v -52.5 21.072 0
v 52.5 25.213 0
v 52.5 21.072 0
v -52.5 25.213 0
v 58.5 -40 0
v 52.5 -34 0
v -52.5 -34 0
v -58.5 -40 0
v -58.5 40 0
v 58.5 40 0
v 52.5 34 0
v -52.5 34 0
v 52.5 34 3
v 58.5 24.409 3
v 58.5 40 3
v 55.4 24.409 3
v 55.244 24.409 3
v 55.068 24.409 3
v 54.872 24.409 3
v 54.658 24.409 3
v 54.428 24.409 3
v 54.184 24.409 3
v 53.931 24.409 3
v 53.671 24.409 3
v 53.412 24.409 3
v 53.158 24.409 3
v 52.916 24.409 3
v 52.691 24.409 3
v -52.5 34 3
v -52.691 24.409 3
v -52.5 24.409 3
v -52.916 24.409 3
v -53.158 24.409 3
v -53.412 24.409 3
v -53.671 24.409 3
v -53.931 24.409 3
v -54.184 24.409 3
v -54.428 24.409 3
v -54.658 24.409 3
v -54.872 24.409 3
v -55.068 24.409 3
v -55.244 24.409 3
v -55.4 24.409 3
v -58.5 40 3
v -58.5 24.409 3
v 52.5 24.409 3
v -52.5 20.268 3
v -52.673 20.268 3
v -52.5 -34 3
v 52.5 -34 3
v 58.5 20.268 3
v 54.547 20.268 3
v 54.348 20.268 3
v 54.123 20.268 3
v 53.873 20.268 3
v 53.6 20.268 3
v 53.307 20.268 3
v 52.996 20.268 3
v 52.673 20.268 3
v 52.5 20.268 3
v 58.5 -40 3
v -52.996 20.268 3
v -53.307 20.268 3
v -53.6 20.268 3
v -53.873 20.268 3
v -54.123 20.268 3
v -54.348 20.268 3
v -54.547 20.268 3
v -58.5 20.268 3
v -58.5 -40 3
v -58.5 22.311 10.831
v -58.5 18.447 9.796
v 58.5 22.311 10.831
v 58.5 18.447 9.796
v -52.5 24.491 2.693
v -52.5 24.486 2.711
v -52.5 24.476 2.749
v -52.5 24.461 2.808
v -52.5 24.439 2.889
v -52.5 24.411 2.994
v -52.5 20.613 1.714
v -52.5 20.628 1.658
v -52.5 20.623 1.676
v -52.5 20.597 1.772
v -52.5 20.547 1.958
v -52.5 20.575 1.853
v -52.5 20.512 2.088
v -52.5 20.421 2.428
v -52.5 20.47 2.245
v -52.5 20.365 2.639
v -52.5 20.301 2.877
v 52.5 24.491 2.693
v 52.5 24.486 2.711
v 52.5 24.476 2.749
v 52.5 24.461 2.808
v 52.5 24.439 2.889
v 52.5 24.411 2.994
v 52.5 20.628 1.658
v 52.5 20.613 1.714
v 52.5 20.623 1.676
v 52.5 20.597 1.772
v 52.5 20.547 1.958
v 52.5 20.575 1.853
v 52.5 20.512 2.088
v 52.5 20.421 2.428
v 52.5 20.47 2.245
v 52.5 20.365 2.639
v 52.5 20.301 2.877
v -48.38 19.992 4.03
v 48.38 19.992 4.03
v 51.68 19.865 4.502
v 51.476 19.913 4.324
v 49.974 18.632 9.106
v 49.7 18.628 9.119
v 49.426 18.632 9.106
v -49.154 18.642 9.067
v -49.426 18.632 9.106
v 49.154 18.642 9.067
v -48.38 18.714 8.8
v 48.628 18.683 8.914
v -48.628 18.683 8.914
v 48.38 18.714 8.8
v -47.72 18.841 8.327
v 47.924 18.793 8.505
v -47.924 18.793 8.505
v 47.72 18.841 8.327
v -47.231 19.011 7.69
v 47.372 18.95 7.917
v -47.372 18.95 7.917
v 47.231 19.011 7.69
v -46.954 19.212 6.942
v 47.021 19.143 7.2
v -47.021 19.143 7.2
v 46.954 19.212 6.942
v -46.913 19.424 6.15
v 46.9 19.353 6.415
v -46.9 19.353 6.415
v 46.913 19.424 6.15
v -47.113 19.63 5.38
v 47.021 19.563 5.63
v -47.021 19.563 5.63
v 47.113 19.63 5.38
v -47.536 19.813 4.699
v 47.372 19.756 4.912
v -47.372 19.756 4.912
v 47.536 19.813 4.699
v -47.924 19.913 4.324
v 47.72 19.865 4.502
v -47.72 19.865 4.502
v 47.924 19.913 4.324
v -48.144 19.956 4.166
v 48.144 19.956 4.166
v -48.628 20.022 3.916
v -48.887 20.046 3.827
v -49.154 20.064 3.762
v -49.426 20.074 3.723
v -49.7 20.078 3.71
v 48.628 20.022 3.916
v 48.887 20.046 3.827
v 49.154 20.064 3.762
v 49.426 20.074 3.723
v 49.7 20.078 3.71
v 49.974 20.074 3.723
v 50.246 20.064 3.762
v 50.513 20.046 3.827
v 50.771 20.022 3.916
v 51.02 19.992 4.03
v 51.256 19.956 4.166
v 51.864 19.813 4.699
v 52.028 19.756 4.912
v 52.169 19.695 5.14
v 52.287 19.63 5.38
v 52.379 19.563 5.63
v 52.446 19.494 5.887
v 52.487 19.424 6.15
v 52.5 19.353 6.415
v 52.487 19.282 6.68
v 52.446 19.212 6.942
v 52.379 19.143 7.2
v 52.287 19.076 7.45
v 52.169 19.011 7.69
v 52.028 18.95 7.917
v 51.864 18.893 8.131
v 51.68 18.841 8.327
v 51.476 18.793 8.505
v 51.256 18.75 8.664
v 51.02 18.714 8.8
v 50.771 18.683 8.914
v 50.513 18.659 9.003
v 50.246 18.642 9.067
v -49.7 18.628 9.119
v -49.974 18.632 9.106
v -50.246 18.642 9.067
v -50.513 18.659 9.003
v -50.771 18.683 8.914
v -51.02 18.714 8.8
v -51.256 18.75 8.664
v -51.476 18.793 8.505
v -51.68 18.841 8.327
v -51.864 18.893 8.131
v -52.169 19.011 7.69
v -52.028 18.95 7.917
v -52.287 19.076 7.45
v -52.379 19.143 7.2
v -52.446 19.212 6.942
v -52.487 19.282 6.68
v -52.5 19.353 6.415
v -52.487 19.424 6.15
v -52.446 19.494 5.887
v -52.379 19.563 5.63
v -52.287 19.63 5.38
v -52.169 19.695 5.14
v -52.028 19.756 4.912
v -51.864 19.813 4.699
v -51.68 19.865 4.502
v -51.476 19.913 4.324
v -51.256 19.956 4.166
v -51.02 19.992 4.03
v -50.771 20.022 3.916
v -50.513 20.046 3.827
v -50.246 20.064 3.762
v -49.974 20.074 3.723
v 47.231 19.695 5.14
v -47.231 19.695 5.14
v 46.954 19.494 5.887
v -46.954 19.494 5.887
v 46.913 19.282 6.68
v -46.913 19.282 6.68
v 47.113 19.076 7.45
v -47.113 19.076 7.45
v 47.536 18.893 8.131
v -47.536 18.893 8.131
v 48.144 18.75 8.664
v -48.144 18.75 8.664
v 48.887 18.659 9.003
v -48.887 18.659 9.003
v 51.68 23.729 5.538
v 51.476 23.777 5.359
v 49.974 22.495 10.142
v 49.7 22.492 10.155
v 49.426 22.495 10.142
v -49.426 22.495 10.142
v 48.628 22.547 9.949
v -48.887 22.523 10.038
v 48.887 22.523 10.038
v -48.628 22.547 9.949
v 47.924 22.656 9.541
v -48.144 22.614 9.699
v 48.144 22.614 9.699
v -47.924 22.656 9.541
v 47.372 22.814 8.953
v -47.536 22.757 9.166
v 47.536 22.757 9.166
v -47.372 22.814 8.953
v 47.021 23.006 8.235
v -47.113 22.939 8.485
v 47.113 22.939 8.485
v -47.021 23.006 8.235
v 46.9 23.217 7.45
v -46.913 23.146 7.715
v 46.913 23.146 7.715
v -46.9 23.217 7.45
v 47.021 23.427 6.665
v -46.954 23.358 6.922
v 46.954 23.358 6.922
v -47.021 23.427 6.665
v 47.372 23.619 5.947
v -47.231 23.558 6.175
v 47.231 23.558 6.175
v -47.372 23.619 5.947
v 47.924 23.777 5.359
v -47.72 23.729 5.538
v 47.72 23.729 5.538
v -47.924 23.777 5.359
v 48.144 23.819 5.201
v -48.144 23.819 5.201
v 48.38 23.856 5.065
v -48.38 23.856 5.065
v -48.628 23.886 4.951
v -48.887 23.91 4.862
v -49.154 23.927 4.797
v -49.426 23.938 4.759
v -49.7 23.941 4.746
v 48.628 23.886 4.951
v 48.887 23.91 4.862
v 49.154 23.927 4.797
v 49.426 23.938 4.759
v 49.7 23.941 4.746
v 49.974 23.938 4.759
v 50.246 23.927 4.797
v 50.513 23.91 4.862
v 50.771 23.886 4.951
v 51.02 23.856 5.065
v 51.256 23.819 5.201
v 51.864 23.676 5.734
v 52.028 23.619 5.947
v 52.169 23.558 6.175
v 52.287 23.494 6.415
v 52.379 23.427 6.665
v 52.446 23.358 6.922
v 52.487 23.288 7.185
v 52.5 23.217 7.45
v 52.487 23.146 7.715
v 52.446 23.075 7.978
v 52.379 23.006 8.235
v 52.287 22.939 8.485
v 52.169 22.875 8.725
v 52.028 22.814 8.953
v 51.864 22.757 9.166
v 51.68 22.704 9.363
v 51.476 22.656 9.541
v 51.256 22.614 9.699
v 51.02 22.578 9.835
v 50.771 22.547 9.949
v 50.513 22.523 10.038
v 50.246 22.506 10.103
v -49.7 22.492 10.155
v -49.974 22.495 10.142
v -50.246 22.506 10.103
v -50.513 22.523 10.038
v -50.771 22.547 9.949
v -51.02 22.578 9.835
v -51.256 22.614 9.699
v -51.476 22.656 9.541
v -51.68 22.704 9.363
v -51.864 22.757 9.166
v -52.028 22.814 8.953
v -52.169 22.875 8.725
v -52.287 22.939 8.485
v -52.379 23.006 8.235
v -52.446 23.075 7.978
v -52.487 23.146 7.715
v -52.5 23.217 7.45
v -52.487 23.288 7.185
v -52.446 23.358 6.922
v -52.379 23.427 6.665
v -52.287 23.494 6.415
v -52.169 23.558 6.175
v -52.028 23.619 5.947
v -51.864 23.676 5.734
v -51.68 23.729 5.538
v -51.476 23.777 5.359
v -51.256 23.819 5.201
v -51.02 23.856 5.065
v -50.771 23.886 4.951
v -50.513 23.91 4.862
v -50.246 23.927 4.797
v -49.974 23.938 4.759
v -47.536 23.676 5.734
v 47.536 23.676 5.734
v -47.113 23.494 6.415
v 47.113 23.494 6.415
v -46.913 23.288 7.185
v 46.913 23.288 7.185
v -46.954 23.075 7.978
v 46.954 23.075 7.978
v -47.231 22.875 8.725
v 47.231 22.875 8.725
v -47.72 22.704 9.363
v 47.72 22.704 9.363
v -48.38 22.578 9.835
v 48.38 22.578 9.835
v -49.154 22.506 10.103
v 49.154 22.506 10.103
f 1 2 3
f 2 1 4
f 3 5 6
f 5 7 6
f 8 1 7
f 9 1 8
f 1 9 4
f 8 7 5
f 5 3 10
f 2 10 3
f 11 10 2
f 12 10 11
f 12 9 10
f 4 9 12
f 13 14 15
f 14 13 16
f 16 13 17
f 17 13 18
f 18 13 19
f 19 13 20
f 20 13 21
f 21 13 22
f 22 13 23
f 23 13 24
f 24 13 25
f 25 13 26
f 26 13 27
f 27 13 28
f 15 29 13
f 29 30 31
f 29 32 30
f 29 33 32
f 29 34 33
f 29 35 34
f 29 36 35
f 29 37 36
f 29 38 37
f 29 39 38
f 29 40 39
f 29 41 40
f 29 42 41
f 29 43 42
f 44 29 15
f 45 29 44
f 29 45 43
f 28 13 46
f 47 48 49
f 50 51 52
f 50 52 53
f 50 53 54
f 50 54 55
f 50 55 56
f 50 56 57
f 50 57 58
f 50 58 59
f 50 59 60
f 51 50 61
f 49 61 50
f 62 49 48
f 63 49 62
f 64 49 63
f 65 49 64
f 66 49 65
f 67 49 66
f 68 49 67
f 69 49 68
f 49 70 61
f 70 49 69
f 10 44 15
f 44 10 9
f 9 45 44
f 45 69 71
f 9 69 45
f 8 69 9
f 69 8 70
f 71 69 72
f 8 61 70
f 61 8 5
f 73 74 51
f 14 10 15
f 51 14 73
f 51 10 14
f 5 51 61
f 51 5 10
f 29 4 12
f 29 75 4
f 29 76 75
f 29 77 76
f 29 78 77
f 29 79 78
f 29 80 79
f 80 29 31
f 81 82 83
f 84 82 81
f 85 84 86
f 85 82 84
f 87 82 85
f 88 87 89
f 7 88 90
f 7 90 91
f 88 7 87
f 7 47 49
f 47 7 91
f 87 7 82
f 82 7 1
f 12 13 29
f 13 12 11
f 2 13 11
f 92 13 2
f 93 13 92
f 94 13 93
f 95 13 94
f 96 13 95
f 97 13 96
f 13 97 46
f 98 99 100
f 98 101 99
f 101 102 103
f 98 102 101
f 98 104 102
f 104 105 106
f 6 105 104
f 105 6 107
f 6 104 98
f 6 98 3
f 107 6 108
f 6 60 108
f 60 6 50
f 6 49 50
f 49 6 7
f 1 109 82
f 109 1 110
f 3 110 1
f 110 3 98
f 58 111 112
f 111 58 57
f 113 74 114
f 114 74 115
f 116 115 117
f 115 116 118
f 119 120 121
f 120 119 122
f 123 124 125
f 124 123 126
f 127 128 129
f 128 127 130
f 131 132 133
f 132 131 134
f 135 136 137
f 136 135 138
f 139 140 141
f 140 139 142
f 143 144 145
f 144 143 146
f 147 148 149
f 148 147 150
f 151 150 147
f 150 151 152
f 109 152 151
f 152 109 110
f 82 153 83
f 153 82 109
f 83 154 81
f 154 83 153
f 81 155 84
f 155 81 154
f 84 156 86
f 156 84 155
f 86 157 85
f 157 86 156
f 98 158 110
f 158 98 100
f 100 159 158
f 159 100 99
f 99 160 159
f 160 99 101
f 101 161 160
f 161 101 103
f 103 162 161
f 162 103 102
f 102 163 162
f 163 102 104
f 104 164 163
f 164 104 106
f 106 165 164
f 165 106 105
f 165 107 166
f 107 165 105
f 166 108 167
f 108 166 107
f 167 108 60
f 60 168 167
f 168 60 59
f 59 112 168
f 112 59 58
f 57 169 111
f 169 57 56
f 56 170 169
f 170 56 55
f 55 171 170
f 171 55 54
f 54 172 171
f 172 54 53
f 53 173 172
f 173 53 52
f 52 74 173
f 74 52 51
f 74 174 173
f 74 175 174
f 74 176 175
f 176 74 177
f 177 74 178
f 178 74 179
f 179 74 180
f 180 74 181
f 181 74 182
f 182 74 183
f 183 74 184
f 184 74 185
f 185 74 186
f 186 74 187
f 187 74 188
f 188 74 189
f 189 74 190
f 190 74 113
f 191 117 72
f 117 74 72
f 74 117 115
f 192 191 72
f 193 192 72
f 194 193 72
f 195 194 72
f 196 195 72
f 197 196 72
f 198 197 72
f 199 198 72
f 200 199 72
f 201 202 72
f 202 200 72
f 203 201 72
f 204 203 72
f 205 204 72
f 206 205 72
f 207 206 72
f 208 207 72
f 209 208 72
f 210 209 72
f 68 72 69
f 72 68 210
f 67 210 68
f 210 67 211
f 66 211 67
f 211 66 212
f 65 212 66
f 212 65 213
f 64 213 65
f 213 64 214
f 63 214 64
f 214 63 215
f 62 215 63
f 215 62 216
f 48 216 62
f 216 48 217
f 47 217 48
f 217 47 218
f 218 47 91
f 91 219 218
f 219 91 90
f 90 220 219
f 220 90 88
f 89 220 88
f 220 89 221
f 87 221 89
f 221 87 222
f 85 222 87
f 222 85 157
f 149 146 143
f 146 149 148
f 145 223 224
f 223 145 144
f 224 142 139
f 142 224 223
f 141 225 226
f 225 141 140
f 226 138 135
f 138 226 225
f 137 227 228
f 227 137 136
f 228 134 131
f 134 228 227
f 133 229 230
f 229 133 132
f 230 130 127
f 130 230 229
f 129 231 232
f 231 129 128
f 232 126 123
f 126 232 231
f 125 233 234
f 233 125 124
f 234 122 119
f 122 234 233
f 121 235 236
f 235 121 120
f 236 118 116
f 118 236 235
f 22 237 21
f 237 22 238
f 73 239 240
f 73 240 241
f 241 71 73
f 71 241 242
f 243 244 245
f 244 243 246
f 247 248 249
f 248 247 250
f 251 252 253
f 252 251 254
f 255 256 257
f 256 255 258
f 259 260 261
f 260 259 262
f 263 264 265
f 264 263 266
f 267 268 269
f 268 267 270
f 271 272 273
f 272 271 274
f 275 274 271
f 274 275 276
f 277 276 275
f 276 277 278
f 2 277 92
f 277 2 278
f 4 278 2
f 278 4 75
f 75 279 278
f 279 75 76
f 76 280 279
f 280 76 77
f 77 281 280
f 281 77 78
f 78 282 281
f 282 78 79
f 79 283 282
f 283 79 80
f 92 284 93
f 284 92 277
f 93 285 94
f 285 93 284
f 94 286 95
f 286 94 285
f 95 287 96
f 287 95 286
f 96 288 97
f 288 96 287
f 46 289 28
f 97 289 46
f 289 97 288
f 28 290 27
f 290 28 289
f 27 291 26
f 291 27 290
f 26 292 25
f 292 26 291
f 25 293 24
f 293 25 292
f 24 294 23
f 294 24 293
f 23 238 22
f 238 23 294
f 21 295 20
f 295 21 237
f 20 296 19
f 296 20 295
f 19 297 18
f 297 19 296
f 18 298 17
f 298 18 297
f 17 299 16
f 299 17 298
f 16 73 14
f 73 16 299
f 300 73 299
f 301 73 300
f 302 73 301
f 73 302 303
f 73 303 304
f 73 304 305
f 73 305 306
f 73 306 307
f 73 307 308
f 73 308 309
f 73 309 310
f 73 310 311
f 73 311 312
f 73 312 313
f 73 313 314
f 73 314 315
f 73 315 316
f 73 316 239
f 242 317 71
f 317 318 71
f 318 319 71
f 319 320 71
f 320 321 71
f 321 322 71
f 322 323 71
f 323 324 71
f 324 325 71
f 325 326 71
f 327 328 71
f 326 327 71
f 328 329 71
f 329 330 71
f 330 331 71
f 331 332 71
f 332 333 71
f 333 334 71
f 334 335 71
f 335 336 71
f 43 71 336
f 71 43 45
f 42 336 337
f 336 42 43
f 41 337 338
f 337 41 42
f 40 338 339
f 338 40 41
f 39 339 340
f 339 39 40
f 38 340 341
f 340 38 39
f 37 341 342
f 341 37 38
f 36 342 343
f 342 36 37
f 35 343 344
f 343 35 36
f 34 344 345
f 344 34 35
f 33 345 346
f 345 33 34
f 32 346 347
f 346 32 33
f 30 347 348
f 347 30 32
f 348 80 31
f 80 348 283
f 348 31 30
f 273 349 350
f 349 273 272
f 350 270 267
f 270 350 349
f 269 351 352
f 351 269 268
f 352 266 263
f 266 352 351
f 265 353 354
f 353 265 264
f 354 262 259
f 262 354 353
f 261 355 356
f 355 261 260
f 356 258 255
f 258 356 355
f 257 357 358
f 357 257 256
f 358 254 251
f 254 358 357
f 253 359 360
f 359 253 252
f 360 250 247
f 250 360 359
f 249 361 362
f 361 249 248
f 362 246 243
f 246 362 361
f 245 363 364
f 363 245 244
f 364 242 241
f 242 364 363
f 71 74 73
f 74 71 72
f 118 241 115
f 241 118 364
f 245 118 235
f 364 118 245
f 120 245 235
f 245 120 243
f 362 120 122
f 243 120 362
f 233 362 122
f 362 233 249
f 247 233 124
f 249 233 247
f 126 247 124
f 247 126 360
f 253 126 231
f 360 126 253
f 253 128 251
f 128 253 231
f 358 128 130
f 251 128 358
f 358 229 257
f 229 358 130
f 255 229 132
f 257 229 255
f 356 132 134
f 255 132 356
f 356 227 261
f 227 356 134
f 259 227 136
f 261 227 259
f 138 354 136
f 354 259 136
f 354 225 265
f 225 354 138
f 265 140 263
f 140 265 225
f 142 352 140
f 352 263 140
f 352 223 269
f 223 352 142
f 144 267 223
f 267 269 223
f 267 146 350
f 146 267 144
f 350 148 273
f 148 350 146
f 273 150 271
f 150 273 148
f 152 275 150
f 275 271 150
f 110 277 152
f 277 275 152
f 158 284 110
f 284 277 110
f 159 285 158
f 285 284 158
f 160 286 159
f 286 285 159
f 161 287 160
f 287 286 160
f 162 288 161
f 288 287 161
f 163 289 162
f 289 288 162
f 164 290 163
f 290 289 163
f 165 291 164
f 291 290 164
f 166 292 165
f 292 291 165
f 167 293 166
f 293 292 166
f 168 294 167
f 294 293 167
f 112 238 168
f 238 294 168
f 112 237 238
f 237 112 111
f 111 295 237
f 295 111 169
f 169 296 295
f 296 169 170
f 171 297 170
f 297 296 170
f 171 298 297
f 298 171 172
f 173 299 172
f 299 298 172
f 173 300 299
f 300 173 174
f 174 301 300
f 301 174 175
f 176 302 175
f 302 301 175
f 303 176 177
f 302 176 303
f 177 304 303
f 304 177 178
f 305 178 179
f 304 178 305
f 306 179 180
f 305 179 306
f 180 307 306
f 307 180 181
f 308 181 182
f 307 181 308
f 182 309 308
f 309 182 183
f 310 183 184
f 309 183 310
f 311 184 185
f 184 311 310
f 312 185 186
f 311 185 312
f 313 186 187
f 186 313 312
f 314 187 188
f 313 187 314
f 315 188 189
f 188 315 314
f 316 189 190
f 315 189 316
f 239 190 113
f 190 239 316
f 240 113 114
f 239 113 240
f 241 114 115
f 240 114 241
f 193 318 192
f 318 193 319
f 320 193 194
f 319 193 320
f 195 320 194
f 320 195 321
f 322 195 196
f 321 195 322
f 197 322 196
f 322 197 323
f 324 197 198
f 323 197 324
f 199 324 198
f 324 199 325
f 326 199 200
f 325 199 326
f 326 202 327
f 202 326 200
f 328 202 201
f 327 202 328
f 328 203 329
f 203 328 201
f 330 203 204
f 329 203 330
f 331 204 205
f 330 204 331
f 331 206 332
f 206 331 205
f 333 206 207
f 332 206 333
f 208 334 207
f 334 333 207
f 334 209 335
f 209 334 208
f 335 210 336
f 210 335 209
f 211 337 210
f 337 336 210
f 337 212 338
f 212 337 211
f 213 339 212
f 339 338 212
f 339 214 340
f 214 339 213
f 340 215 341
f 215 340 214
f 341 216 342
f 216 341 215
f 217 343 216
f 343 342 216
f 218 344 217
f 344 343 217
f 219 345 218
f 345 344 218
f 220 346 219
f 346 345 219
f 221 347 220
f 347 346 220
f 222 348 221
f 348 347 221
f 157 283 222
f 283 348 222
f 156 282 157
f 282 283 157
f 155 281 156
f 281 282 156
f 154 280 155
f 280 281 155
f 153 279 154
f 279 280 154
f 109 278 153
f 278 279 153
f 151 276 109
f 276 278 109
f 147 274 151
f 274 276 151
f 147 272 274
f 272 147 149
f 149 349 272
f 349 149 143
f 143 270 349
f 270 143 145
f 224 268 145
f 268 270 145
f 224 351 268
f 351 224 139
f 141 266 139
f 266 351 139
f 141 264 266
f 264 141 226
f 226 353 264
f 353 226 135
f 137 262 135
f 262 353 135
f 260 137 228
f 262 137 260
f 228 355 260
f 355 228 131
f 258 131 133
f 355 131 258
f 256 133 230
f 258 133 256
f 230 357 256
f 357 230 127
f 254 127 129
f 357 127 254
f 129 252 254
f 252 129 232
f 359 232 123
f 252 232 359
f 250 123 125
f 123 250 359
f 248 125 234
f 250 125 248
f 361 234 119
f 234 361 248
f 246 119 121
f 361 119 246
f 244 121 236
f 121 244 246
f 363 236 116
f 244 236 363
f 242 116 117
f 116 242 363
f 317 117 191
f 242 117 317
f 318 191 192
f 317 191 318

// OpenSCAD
$fn = 64;

base = [105.00, 80.00];

base_border = 6.00;
border = base_border;

dia_mount = 5.60 / 2;

difference() {
    union() {
        linear_extrude(3)
            difference() {
                square([base[0] + base_border * 2, base[1]], center = true);
                square([base[0], base[1] - base_border * 2], center = true);
            }

        translate([0, base[1] / 2 * 0.5, 4])
            rotate([-75, 0, 0])
                linear_extrude(4)
                    difference() {
                        square([base[0] + border * 2, 12], center = true);
                        translate([base[0] / 2 - dia_mount, -2.5 , 0])
                            circle(dia_mount);
                        
                        translate([-base[0] / 2 + dia_mount, -2.5 , 0])
                            circle(dia_mount);
                    }
    }
    
    translate([0, 0, -5])
        linear_extrude(5)
            square([base[0] + base_border * 2, base[1]], center = true);
}
